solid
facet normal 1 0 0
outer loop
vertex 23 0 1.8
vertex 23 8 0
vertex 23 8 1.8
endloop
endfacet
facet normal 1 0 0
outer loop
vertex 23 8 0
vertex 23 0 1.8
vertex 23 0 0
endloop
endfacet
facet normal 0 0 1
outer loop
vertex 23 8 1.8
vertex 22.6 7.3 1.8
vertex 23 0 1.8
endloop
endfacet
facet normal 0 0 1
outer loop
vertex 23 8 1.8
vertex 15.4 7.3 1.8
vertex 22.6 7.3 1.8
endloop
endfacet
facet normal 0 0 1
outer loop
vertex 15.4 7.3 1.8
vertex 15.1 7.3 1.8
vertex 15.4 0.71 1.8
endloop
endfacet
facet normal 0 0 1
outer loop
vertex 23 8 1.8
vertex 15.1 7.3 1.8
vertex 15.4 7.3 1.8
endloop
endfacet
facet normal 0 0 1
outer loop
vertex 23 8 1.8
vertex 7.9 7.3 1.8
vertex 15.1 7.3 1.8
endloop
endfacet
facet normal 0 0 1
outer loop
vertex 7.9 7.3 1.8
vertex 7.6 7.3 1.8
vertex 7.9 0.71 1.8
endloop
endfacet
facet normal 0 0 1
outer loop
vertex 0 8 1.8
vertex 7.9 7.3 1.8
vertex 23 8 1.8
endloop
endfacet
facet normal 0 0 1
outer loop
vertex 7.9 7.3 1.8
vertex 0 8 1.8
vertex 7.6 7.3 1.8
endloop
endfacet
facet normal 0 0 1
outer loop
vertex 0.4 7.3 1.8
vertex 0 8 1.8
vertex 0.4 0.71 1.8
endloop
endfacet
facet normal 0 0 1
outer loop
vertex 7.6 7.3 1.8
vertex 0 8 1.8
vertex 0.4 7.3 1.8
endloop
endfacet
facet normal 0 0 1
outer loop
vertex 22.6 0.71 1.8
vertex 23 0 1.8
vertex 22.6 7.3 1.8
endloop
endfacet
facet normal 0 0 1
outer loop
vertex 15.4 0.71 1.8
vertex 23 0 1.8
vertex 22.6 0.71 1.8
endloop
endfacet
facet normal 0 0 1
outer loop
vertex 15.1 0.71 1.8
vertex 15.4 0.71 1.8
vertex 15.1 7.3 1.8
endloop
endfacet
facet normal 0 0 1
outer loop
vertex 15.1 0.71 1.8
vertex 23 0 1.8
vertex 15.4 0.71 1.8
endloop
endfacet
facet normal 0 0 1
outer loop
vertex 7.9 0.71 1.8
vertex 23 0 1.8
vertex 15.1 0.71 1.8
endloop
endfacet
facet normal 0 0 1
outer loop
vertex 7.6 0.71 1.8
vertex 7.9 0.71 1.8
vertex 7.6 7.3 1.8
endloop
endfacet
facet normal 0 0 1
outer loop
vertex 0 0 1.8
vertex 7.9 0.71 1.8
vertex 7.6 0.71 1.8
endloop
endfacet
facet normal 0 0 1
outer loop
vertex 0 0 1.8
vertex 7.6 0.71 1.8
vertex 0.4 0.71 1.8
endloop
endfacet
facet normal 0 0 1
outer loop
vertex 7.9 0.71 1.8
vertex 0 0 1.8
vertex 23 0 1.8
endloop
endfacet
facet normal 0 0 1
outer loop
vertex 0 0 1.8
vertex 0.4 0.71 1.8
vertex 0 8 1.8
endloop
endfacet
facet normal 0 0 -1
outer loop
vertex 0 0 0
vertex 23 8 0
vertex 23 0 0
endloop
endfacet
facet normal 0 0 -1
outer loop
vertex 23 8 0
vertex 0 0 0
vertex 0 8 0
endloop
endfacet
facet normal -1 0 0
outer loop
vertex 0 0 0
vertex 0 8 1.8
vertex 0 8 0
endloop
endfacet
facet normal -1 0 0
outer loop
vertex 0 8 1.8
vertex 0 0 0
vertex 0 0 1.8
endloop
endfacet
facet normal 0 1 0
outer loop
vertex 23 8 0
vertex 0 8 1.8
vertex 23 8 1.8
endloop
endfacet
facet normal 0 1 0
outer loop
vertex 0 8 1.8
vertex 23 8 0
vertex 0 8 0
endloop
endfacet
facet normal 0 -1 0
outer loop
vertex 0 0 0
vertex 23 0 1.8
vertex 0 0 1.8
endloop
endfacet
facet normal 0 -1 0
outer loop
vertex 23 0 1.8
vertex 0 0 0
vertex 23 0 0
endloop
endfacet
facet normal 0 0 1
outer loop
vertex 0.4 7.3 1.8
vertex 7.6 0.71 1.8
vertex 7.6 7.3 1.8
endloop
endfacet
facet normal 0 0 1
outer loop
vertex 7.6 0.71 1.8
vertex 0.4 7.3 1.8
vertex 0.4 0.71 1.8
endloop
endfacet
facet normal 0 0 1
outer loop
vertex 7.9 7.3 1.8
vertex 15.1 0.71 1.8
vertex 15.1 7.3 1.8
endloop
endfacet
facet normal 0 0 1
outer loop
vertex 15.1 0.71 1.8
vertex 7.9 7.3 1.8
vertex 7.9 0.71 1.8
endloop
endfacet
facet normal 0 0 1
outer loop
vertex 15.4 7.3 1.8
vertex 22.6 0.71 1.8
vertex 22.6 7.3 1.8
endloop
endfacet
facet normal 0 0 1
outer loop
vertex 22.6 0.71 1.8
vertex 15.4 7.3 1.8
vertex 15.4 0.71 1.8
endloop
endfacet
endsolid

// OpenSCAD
difference(){
 
    color("#f3f3f3")
    cube([23,8,1.8]);

    // remove some block
    translate([0.4, 0.71, 0.1])
    for(j=[0:2]){

        translate([7.5*j, 0.0, 0.0])
        cube([7.2,6.59,1.8]);   
    }
    
    // remove space for + pin
    translate([-0.1, 0.3, -0.1])
    cube([2.1,7.4,1]);
      
    // remove space for - pin
    translate([21, 0.3, -0.1])
    cube([2.1,7.4,1]);
}

// add cells
color("#000000")
translate([0.4, 0.71, 0.1])

for(j=[0:2]){

    translate([7.5*j, 0.0, 0.0])
    cube([7.2,6.59,1.7]); 
}

// add + pin
color("#FAE481")
translate([0, 0.3, 0])
cube([2,7.4,1]);

// add - pin
color("#FAE481")
translate([21, 0.3, 0])
cube([2,7.4,1]);
